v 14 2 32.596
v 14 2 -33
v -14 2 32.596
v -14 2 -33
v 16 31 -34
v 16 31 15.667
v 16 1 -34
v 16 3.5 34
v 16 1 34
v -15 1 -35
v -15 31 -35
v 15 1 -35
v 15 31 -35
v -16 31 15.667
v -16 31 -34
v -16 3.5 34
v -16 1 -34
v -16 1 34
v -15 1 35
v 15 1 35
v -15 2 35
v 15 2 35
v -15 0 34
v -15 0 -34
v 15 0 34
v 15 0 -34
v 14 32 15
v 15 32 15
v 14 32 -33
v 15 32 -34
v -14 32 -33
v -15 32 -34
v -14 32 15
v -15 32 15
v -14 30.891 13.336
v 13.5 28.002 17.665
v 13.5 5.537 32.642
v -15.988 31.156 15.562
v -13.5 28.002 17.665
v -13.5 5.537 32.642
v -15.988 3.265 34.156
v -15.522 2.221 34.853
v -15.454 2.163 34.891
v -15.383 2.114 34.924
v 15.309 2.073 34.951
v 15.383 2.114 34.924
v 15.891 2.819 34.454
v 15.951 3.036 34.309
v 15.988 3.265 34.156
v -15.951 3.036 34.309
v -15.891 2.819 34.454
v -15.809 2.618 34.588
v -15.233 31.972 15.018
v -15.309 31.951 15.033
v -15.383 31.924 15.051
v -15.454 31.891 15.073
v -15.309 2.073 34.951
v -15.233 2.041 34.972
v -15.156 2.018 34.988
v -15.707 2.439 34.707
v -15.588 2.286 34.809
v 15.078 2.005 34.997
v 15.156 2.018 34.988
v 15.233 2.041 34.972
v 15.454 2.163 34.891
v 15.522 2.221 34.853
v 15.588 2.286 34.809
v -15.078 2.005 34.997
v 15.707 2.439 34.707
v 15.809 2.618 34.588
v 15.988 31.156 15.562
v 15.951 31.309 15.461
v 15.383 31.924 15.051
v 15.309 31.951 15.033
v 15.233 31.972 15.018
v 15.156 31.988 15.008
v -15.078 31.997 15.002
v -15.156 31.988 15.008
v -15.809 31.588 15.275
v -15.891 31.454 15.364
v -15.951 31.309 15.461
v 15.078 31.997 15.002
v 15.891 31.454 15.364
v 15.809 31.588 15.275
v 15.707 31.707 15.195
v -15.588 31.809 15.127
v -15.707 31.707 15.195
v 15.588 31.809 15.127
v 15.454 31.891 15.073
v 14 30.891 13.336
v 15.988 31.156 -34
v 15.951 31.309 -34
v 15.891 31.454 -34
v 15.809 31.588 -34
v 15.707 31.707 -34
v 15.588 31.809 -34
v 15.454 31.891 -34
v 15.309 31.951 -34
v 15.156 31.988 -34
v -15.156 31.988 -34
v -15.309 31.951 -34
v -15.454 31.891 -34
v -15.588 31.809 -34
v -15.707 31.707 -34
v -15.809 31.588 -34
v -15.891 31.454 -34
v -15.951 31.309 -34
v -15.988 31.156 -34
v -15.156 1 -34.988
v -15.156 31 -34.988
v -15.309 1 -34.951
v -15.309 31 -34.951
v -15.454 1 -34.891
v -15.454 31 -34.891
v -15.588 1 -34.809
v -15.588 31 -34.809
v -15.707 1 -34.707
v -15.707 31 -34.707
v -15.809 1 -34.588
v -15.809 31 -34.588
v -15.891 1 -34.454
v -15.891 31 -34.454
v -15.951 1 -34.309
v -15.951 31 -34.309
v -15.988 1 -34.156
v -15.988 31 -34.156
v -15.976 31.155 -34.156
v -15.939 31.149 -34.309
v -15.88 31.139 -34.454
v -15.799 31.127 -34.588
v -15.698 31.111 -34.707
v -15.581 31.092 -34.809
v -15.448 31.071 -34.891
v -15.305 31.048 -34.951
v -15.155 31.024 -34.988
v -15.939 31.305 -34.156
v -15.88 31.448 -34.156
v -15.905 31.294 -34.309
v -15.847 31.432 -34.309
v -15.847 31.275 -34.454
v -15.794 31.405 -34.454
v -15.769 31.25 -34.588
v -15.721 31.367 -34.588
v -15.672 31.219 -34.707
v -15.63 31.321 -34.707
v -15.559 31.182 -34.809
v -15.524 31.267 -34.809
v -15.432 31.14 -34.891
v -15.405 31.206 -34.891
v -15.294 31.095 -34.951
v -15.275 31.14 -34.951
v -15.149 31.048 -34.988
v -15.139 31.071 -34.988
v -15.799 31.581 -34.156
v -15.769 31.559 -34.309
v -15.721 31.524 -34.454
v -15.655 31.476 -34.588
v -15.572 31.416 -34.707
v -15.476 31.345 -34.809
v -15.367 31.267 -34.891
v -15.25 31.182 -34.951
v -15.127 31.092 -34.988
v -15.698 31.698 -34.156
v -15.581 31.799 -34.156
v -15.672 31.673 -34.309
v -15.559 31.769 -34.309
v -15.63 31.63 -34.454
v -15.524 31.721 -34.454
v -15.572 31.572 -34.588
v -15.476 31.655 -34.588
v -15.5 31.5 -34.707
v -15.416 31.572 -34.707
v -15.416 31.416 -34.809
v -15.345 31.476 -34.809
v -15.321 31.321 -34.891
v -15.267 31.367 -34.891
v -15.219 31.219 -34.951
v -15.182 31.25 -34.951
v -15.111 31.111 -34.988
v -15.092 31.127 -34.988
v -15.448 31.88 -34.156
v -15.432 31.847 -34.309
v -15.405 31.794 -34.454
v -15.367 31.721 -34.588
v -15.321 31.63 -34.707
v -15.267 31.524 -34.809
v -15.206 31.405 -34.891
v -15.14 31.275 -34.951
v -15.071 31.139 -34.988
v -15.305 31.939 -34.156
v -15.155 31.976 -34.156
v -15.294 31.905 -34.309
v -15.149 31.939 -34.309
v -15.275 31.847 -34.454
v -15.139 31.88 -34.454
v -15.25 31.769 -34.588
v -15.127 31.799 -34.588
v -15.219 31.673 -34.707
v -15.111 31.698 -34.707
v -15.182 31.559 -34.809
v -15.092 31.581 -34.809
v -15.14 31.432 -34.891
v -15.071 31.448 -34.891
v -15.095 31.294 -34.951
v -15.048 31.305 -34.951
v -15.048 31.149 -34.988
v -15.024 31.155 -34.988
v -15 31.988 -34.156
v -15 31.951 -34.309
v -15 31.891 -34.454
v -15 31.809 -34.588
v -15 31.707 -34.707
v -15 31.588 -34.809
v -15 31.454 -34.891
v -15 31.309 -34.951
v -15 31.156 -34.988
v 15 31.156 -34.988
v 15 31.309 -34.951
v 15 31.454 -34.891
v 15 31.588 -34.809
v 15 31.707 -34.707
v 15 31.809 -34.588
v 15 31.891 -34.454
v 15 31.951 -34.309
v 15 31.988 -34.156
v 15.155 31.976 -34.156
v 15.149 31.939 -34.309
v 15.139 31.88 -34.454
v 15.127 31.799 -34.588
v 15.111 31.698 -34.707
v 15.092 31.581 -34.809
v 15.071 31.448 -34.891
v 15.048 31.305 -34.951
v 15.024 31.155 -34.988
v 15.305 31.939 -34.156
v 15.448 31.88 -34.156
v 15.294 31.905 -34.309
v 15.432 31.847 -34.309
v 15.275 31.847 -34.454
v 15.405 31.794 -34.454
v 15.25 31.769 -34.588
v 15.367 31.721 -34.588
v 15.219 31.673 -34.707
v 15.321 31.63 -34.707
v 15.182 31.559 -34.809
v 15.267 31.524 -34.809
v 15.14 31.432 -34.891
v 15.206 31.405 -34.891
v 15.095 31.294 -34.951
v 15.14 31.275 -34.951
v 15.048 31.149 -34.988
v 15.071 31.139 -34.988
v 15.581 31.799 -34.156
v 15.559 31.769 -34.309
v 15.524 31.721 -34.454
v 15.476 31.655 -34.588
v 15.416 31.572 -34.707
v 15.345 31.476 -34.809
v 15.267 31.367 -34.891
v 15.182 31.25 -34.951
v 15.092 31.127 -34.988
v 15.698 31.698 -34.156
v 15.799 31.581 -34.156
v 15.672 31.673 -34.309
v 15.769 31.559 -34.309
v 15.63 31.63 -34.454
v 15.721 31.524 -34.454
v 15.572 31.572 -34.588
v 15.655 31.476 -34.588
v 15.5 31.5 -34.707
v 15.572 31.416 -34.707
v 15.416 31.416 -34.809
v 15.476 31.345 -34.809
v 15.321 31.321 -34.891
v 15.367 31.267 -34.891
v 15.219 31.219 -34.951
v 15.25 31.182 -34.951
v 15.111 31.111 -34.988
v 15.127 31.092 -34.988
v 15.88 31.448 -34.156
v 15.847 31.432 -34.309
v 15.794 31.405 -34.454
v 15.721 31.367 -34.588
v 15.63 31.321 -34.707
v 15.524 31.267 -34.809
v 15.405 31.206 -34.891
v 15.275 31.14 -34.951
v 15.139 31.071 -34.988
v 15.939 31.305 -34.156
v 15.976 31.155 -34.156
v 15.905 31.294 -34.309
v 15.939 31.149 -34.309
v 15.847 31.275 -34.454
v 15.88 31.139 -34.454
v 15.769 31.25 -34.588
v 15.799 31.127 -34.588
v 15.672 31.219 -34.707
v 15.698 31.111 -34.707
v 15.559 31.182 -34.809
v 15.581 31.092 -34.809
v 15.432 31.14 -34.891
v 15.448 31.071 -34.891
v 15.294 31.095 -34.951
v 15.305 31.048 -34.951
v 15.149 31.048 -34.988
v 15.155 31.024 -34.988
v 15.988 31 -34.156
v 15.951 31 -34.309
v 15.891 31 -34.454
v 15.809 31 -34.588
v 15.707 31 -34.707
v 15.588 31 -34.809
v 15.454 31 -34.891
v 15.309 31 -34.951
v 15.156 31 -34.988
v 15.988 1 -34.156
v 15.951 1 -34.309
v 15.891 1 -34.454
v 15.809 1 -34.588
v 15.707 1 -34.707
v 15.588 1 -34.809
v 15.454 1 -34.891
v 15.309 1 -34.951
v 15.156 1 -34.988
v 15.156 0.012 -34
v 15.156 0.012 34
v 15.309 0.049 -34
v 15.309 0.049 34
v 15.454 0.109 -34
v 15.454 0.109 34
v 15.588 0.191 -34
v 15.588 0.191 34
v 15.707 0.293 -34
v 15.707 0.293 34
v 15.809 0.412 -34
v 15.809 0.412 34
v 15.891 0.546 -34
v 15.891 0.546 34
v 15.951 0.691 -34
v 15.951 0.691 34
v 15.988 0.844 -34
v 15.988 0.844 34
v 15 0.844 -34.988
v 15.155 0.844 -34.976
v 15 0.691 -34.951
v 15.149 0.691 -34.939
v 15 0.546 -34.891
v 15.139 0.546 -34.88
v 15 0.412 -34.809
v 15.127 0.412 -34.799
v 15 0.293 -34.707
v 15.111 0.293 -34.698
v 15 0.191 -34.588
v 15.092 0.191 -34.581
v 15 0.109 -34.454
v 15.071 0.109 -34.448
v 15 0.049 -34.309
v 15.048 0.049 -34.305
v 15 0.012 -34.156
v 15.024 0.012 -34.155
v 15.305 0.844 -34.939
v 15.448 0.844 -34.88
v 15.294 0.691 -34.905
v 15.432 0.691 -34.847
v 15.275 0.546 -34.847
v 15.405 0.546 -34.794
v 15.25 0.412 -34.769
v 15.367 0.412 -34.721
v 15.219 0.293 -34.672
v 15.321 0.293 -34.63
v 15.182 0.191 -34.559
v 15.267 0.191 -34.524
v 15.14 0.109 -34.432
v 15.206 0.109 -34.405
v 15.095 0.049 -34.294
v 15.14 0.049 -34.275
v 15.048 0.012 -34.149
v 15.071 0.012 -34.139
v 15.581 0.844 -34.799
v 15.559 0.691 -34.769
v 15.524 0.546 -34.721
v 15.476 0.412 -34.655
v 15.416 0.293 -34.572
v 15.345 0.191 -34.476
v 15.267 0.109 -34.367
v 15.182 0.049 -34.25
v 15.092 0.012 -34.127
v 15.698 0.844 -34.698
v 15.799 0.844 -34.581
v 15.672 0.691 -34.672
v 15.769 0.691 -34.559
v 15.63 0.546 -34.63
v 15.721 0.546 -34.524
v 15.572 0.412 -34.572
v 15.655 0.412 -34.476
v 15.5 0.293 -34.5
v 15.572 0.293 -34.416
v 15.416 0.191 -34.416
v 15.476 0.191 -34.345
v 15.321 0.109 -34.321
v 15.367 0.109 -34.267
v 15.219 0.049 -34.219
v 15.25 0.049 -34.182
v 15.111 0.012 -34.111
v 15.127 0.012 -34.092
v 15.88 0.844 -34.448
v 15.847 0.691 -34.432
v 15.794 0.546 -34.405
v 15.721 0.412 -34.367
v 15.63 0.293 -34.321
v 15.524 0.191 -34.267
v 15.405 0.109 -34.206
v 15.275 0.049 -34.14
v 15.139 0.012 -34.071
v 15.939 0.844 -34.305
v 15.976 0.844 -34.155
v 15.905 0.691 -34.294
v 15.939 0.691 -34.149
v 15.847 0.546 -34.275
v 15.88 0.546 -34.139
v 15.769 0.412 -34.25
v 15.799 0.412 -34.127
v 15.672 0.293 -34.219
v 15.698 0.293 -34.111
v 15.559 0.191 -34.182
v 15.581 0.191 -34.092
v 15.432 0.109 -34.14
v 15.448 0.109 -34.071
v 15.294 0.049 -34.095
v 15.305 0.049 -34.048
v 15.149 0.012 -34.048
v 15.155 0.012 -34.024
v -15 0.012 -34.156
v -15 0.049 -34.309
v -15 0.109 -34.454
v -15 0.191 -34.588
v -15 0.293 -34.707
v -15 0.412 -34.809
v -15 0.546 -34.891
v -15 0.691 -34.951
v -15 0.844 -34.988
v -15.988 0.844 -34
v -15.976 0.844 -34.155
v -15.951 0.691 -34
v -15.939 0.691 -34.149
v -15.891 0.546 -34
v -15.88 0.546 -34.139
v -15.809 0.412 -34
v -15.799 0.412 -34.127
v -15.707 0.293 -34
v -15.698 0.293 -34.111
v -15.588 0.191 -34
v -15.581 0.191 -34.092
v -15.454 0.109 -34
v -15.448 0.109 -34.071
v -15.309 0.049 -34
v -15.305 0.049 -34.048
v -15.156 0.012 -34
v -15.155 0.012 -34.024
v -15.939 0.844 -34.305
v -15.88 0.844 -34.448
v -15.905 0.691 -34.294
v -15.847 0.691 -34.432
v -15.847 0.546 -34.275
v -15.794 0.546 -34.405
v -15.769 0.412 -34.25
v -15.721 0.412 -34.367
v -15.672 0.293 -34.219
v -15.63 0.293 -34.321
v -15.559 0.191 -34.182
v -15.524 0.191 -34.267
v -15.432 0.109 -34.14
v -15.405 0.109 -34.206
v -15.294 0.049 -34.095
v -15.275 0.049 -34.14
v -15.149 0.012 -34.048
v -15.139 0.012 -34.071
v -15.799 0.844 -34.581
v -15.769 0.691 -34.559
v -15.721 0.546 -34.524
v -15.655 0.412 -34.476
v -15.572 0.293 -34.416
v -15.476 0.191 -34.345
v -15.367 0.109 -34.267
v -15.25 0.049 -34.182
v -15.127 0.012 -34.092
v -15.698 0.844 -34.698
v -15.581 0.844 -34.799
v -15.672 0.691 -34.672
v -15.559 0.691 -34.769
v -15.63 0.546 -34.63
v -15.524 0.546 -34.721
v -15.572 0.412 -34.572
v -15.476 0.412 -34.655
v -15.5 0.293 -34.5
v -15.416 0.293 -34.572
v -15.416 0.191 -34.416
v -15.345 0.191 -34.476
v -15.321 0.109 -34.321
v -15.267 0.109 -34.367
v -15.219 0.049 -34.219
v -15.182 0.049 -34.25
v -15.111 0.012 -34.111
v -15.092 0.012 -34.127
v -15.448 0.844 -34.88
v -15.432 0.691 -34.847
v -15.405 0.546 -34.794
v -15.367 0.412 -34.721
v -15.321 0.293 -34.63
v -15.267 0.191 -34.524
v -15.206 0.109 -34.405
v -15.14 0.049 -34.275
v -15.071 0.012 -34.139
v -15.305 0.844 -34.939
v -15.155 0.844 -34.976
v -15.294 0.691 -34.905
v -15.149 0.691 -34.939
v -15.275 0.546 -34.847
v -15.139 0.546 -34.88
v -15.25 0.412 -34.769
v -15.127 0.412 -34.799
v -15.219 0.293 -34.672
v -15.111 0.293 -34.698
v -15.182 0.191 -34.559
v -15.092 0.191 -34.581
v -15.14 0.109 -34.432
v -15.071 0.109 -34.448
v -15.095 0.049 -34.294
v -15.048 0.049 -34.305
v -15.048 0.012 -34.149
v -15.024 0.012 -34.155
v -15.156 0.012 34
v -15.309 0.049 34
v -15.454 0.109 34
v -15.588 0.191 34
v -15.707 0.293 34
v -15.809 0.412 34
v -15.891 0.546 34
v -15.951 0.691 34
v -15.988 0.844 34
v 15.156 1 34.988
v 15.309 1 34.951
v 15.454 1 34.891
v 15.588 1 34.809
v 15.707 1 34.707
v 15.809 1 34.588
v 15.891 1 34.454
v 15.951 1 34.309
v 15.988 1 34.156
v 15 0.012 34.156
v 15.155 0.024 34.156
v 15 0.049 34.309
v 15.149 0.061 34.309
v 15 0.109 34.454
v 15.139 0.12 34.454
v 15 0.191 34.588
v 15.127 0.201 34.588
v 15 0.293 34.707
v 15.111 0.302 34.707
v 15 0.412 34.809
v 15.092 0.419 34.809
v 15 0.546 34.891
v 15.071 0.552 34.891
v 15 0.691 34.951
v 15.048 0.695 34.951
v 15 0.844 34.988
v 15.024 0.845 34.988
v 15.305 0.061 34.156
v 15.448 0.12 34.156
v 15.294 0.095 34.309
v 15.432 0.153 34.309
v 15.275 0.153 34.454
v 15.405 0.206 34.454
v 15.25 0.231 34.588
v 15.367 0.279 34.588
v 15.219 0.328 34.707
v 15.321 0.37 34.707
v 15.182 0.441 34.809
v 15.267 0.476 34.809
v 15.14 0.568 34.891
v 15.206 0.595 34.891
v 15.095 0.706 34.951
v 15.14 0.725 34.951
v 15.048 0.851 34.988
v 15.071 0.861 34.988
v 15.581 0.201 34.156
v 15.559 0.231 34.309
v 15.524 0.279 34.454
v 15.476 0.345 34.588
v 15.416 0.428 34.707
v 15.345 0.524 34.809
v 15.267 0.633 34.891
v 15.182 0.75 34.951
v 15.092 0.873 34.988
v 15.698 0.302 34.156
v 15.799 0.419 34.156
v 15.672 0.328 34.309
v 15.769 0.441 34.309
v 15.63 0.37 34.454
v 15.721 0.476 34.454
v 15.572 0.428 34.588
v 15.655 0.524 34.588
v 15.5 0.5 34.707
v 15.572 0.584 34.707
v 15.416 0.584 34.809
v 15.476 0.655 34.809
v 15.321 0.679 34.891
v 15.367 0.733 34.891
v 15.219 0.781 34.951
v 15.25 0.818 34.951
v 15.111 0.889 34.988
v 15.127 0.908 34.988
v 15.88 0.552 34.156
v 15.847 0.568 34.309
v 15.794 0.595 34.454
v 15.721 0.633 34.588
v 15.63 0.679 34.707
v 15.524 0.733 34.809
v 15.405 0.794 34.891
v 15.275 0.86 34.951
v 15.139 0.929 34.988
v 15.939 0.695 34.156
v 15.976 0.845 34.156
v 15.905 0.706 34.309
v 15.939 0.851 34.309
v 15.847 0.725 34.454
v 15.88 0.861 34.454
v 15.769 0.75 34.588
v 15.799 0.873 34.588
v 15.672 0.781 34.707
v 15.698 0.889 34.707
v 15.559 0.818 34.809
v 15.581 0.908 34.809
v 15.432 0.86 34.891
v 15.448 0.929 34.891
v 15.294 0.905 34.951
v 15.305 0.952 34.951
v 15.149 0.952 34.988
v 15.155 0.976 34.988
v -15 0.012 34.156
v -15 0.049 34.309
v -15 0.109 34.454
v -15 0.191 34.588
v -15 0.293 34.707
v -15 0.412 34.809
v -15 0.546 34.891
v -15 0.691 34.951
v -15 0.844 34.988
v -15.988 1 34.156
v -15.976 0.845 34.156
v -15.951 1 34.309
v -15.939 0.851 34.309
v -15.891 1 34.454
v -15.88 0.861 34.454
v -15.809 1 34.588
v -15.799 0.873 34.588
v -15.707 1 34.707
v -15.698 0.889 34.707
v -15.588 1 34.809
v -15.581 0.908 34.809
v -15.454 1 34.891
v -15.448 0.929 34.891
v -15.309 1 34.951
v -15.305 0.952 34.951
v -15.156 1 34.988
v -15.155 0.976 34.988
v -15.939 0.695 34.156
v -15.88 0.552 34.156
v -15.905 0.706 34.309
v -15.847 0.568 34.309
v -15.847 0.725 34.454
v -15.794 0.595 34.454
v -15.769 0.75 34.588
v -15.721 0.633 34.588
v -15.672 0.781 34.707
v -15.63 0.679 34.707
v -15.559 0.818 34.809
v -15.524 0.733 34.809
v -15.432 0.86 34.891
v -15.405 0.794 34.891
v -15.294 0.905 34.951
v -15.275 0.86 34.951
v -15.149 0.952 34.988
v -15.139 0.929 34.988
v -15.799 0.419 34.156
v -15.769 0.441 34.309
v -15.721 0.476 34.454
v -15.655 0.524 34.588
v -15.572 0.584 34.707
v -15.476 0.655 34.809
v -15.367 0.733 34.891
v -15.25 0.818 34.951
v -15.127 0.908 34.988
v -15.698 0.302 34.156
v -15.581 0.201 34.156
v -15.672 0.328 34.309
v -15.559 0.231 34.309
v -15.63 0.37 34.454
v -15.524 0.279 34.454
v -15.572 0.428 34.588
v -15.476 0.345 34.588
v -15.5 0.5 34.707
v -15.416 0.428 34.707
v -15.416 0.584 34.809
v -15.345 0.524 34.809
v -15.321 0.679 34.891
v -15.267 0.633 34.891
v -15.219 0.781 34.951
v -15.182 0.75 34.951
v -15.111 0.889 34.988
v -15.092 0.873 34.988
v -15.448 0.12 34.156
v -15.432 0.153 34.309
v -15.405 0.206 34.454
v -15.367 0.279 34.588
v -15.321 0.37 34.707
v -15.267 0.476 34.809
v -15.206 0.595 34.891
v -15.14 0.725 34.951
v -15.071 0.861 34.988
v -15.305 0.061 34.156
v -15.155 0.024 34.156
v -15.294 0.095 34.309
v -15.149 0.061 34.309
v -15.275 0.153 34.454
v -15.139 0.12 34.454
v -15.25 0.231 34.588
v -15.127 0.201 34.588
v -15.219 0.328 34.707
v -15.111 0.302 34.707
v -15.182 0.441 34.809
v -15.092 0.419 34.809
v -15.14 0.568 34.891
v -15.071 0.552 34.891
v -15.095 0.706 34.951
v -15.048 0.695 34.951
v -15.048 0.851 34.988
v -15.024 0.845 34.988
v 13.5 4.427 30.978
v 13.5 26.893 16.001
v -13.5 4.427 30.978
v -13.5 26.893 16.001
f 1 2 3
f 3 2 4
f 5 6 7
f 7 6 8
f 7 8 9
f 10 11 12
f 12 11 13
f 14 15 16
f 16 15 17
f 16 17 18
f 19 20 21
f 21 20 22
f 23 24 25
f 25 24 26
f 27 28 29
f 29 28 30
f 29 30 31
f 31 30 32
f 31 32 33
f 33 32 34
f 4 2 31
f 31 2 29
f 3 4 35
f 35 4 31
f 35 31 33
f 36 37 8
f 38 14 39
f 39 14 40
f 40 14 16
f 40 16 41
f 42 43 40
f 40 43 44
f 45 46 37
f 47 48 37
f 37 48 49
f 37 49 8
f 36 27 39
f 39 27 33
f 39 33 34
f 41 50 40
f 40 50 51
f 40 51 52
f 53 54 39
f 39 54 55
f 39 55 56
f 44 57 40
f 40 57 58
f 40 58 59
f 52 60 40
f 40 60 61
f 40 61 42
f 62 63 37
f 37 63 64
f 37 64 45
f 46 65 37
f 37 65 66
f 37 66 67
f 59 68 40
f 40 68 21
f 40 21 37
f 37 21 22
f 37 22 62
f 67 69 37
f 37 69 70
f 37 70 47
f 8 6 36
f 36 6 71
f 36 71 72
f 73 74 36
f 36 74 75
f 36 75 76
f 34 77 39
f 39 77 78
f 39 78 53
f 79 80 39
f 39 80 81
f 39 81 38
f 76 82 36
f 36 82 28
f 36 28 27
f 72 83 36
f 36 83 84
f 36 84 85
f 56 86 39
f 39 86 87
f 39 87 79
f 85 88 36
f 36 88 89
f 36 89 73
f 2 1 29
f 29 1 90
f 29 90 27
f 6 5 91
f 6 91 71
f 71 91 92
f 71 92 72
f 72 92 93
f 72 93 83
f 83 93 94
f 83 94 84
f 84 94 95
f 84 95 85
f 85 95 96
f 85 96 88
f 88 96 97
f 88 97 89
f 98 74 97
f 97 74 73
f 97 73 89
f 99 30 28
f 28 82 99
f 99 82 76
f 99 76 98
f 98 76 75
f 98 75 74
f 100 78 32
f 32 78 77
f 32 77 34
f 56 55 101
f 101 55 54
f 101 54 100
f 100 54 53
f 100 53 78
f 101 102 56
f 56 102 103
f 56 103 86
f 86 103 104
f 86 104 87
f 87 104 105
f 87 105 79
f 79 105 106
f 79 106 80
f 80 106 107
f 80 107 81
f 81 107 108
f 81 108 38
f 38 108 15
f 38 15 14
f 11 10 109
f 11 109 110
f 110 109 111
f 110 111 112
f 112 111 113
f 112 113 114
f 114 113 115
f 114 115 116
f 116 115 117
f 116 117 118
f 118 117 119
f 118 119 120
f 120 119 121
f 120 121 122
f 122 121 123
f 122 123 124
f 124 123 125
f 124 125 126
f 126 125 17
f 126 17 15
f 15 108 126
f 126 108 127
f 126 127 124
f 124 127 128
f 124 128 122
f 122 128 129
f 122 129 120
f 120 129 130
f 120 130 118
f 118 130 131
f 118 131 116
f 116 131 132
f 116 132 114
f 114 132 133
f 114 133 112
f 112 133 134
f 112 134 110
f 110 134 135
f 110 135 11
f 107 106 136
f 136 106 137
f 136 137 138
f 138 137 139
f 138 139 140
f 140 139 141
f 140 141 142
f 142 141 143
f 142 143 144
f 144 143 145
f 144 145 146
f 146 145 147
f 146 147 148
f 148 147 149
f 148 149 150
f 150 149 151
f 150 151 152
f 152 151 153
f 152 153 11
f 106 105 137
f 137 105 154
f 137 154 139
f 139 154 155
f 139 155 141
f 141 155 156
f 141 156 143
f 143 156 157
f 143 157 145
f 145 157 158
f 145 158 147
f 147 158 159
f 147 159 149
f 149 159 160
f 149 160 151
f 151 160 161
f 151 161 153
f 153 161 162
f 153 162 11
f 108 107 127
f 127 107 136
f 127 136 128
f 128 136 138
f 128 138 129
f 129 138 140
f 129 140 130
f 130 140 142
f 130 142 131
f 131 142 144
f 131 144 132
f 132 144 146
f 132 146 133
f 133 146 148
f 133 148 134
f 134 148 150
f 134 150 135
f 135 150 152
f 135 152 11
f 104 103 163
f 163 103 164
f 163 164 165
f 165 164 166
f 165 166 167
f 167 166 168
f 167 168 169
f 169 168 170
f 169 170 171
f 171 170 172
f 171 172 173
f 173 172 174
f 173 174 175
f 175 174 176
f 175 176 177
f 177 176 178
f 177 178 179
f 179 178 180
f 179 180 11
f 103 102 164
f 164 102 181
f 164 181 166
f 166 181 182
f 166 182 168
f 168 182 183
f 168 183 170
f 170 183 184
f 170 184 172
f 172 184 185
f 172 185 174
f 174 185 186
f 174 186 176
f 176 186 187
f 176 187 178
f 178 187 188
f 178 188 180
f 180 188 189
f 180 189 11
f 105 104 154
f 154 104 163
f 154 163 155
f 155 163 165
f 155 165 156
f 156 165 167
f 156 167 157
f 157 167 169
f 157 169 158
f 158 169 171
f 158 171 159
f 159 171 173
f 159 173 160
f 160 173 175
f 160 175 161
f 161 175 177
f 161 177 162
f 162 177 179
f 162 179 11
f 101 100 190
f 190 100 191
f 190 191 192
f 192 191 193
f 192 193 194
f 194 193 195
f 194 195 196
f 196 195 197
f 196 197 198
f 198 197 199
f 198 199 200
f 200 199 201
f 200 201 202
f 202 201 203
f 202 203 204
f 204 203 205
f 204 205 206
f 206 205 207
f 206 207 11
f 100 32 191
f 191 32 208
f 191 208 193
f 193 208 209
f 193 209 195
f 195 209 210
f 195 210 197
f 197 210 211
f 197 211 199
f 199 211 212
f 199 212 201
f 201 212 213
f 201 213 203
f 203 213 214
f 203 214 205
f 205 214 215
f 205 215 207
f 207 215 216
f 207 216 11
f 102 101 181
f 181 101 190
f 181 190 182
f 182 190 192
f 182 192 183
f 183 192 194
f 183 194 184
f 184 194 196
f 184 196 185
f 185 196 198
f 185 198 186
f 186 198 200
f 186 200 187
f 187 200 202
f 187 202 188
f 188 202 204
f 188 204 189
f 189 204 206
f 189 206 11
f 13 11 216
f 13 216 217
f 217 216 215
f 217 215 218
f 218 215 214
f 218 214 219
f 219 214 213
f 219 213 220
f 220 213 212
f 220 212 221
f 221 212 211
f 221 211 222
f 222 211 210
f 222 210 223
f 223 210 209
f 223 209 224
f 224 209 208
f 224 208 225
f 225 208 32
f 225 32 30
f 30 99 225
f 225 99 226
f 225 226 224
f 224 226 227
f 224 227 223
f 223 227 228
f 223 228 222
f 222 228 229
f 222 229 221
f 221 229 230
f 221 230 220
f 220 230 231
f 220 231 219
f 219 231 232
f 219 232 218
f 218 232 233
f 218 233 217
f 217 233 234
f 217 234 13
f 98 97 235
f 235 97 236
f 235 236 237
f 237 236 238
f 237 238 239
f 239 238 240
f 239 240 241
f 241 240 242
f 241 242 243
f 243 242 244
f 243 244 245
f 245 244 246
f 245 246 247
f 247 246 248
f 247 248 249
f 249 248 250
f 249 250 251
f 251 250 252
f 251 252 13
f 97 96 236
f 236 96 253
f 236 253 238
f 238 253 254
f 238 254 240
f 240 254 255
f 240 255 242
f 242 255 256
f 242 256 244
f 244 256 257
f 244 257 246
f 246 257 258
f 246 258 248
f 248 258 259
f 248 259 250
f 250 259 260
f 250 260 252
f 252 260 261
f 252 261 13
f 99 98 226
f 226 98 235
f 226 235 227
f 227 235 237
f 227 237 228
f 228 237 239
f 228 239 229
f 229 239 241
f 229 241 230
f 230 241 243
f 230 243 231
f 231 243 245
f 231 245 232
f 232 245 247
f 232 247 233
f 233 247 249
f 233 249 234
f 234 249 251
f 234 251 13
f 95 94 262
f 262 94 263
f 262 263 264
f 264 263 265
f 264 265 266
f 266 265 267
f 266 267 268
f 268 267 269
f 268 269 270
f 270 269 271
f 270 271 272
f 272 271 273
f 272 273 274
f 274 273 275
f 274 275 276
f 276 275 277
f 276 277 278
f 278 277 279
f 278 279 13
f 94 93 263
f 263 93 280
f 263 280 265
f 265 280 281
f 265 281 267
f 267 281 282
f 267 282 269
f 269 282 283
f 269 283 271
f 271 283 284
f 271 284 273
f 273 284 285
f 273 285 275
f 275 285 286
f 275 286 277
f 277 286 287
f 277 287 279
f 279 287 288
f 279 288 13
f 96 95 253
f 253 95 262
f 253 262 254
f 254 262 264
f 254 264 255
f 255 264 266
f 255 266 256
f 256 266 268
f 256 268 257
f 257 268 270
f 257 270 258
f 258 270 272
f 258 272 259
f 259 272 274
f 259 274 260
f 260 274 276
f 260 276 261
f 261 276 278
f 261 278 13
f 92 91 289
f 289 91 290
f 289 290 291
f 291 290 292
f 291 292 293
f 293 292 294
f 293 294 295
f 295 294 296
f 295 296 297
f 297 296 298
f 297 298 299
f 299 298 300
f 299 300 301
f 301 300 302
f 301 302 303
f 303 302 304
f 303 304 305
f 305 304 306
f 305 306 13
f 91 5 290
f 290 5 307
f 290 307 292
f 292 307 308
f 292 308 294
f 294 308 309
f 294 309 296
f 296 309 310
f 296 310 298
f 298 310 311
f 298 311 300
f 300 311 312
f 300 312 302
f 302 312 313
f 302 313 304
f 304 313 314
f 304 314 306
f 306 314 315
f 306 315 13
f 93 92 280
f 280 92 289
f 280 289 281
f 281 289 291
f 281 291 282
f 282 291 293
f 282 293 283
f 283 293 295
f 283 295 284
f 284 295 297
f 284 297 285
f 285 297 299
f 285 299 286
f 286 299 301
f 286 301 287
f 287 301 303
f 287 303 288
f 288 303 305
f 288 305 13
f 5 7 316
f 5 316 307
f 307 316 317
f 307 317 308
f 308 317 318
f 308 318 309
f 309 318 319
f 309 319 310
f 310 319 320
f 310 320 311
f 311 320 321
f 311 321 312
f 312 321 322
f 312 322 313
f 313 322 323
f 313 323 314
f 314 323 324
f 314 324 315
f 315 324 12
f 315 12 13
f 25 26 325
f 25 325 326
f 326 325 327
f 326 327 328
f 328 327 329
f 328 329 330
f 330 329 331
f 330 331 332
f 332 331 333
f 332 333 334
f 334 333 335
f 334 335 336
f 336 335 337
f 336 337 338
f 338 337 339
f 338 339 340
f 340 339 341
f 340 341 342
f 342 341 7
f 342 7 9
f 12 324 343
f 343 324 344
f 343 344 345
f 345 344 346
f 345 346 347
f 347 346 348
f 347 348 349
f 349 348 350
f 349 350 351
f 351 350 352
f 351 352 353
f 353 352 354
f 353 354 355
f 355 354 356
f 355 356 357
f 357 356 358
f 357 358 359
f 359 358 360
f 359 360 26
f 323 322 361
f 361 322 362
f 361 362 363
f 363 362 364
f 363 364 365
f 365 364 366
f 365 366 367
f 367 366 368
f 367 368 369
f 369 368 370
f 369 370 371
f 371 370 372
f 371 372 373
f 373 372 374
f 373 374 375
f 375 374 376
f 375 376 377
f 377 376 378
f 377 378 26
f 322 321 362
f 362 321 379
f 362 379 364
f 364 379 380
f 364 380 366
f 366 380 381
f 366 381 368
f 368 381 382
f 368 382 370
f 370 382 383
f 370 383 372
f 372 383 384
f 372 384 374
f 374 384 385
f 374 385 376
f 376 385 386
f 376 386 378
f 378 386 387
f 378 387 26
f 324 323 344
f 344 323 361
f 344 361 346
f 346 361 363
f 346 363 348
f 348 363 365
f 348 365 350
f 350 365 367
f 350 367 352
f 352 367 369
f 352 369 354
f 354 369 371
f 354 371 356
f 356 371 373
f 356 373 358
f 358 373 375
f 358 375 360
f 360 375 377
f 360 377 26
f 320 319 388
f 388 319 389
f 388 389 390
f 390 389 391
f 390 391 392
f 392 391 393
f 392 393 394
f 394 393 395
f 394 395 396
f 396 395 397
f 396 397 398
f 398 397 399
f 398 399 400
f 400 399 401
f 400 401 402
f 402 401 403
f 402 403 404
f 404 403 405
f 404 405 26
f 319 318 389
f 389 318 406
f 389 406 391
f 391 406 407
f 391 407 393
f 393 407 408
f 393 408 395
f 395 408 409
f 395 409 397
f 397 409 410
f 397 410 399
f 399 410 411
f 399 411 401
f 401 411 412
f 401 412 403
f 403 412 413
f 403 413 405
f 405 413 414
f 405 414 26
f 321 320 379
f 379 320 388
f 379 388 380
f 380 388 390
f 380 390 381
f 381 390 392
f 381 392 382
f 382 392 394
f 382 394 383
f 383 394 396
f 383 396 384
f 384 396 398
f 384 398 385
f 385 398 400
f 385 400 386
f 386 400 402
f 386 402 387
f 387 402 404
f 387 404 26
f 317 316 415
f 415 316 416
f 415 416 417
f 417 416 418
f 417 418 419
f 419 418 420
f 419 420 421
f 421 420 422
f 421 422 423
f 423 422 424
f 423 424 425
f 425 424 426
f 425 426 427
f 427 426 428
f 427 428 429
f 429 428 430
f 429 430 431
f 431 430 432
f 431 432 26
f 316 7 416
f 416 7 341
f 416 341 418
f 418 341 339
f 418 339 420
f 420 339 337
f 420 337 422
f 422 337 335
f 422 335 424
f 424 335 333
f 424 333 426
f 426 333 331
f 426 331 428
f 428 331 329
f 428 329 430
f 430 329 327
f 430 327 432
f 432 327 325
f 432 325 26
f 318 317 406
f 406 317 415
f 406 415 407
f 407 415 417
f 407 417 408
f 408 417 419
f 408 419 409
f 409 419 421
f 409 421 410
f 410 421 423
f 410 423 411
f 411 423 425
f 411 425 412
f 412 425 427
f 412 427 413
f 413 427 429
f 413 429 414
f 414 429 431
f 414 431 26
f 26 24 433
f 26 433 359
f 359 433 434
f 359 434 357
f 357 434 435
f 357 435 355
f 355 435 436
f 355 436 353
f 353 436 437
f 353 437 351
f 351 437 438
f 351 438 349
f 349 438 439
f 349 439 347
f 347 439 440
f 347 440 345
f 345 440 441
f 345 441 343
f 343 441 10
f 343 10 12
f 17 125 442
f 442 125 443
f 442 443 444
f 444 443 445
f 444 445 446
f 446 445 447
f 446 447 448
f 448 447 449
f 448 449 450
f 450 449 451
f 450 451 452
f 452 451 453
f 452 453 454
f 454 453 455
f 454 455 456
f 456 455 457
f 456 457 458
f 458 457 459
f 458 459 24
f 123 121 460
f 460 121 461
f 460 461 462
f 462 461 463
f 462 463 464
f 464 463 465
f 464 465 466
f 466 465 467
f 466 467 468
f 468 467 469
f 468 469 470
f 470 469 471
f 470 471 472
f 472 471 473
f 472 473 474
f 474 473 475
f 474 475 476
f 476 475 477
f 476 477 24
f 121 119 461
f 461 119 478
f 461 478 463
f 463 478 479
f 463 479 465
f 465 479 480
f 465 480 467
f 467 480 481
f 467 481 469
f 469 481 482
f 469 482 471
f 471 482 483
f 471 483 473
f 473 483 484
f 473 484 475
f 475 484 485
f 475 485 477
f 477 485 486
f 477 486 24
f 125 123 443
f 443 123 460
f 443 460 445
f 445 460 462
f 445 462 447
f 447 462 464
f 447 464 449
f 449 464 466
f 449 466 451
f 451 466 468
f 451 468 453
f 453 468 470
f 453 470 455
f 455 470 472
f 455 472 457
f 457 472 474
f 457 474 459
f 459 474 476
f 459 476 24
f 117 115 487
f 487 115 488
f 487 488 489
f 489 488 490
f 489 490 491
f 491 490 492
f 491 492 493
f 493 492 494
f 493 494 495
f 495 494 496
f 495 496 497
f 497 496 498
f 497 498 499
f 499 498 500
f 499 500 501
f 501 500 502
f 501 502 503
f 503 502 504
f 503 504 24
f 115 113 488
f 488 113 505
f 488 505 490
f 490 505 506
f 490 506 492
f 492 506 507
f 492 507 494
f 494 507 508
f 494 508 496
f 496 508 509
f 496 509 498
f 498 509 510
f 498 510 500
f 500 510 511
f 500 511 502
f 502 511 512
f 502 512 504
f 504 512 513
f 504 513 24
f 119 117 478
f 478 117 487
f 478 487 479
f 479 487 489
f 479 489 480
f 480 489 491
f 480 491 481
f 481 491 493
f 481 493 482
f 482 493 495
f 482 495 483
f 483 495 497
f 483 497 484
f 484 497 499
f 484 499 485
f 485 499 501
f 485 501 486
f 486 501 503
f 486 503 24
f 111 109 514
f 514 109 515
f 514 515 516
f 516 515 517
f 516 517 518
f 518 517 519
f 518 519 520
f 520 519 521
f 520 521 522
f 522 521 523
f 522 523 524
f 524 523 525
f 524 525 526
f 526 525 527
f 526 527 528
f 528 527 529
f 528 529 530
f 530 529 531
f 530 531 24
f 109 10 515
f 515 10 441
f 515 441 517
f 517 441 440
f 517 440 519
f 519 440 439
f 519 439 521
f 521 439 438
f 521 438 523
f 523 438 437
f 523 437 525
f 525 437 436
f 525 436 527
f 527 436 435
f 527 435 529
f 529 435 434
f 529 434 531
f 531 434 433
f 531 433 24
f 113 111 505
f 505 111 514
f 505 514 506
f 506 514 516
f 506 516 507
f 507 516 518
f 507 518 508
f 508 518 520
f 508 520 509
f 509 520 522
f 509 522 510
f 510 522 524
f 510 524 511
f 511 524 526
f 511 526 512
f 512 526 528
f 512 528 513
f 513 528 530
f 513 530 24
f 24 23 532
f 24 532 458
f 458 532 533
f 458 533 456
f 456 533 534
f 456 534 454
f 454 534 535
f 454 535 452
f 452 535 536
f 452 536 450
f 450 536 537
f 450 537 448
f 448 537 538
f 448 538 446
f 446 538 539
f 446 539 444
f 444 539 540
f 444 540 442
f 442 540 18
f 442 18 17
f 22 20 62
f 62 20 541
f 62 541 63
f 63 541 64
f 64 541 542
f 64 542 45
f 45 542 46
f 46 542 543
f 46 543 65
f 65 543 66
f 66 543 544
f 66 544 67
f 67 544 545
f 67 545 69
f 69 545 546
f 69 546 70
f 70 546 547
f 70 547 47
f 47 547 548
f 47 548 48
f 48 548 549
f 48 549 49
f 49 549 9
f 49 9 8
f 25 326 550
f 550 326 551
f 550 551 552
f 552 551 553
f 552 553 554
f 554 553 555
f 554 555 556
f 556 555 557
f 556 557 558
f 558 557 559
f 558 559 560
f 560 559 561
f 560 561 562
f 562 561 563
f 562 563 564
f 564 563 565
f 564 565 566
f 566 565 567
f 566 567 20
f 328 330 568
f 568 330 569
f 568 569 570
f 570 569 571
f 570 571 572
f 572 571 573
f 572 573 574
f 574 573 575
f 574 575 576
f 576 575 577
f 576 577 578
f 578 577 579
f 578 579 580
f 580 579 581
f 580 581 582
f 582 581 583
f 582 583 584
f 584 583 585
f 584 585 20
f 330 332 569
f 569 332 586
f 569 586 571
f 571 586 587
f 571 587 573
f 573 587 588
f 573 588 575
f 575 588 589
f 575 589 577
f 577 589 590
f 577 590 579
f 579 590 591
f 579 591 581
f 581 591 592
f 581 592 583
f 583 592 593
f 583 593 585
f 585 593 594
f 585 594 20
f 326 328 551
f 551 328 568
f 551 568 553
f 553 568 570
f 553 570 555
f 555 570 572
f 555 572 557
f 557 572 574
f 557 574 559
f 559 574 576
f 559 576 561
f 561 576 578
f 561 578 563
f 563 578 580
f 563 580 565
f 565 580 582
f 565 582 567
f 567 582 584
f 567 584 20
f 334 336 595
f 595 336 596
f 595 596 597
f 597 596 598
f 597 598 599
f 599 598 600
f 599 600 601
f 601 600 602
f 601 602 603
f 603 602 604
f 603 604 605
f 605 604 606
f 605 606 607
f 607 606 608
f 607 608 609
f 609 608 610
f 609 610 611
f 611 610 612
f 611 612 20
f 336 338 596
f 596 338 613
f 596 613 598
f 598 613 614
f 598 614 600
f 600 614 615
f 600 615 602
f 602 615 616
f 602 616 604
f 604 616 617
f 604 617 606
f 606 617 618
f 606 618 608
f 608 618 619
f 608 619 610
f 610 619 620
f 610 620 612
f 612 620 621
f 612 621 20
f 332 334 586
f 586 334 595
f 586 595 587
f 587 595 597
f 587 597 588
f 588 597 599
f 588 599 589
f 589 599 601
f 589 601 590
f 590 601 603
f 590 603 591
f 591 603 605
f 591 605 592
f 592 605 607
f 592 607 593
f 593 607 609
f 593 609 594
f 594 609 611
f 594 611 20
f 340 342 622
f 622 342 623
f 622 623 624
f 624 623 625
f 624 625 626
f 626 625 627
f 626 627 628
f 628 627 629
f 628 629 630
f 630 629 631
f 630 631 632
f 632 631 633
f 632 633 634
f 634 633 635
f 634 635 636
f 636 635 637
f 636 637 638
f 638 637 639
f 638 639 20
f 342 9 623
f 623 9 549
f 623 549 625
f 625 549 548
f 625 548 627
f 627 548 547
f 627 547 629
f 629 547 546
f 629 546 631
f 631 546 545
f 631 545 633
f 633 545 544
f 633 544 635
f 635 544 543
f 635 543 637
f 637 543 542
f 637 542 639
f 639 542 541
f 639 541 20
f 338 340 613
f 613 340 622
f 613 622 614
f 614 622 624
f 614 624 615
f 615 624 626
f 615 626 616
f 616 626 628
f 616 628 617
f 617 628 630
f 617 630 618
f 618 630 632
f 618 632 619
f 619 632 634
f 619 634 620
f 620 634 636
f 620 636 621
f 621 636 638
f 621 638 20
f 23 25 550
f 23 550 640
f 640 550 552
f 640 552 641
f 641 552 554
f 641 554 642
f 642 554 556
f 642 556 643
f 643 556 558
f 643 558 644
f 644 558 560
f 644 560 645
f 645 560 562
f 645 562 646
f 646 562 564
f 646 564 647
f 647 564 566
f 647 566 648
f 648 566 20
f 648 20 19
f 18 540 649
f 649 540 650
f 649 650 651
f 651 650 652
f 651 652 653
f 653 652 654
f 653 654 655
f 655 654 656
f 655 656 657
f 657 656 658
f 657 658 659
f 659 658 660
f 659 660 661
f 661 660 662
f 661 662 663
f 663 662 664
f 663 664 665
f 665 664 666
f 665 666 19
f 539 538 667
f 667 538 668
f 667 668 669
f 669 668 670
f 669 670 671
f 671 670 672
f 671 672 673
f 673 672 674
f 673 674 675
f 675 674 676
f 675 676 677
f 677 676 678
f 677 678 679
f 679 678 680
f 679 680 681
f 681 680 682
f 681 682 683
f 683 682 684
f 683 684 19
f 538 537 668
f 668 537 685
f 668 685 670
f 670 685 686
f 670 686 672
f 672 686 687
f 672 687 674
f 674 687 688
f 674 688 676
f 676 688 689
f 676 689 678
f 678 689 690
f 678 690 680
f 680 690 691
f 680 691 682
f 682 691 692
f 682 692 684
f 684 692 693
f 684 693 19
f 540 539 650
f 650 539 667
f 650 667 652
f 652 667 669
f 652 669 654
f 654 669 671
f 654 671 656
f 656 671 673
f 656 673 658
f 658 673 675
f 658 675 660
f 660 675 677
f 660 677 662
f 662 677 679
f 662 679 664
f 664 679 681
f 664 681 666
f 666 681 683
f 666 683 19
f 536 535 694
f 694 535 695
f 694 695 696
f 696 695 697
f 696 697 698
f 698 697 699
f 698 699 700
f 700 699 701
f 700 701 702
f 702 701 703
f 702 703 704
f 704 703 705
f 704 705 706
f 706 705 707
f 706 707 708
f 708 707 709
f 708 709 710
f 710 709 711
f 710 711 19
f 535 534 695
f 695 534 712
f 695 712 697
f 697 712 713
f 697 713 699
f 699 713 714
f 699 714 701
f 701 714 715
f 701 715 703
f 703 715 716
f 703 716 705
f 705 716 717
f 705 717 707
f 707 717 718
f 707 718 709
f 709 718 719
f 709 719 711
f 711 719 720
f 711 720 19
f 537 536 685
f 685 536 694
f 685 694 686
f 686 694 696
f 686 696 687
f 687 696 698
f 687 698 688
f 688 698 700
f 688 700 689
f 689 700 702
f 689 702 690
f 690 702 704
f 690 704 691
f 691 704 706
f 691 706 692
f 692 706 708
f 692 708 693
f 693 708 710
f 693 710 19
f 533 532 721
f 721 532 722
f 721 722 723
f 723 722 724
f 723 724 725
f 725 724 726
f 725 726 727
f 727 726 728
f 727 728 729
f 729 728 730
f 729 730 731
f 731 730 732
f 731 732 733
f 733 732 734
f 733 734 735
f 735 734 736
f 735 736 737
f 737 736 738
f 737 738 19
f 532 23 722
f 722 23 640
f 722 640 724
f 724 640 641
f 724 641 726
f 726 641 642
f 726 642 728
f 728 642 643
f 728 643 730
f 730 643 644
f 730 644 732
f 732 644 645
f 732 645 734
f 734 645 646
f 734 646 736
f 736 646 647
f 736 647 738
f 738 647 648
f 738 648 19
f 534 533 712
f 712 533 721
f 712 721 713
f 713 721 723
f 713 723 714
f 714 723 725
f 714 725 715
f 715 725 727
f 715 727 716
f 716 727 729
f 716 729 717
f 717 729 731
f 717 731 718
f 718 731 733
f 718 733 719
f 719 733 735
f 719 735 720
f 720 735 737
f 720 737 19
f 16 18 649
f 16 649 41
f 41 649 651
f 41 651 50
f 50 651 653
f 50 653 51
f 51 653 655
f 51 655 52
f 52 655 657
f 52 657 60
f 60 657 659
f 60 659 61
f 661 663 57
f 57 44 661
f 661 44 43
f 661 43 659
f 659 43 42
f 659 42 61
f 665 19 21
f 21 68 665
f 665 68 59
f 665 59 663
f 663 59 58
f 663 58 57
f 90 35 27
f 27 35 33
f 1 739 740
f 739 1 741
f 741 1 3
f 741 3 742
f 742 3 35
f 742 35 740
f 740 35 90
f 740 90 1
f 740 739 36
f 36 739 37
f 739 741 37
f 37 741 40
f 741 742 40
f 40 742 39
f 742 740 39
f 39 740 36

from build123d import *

# Parameters (mm, degrees)
SKETCH2_W           = 32
SKETCH2_H           = 70
BOSS_EXTRUDE1_DEPTH = 2
BOSS_EXTRUDE2_DEPTH = 2
BOSS_EXTRUDE3_DEPTH = 2
SKETCH6_W           = 28
SKETCH6_H           = 30
BOSS_EXTRUDE4_DEPTH = 2
FILLET1_R           = 1
FILLET2_R           = 1
FILLET3_R           = 1
FILLET4_R           = 1
FILLET5_R           = 1
SKETCH7_W           = 28
SKETCH7_H           = 36.055512754
SKETCH7_W_2         = 27
SKETCH7_H_2         = 27
BOSS_EXTRUDE5_DEPTH = 2


with BuildPart() as part:
    # Sketch2 → Boss-Extrude1 (new body)
    with BuildSketch(Plane(origin=(0, 0, 0), x_dir=(1, 0, 0), z_dir=(0, 1, 0))):
        Rectangle(SKETCH2_W, SKETCH2_H)
    extrude(amount=BOSS_EXTRUDE1_DEPTH)



with BuildPart() as body_2:
    # Sketch4 → Boss-Extrude2 (new body)
    with BuildSketch(Plane.ZY.offset(16)):
        Polygon((35, 2), (15, 32), (-35, 32), (-35, 2), align=None)
    extrude(amount=-BOSS_EXTRUDE2_DEPTH)


with BuildPart() as body_3:
    # Sketch5 → Boss-Extrude3 (new body)
    with BuildSketch(Plane(origin=(16, 0, 0), x_dir=(0, 0, -1), z_dir=(1, 0, 0))):
        Polygon((-35, 2), (-15, 32), (35, 32), (35, 2), align=None)
    extrude(amount=-BOSS_EXTRUDE3_DEPTH)


with BuildPart() as part_1:
    add(part.part)

    add(body_2.part)  # Boss-Extrude4 merges body 2

    add(body_3.part)  # Boss-Extrude4 merges body 3
    # Sketch6 → Boss-Extrude4 (add)
    with BuildSketch(Plane(origin=(0, 0, -35), x_dir=(-1, 0, 0), z_dir=(0, 0, -1))):
        with Locations((0, 17)):
            Rectangle(SKETCH6_W, SKETCH6_H)
    extrude(amount=-BOSS_EXTRUDE4_DEPTH)

    # Fillet1
    fillet1_edges = [part_1.edges().sort_by_distance(p)[0] for p in [
        (16, 32, -10),
    ]]
    fillet(fillet1_edges, radius=FILLET1_R)

    # Fillet2
    fillet2_edges = [part_1.edges().sort_by_distance(p)[0] for p in [
        (-16, 32, -10),
    ]]
    fillet(fillet2_edges, radius=FILLET2_R)

    # Fillet3
    fillet3_edges = [part_1.edges().sort_by_distance(p)[0] for p in [
        (0, 32, -35),
        (16, 15.5, -35),
        (15.707106781, 31.707106781, -35),
        (-16, 15.5, -35),
        (-15.707106781, 31.707106781, -35),
    ]]
    fillet(fillet3_edges, radius=FILLET3_R)

    # Fillet4
    fillet4_edges = [part_1.edges().sort_by_distance(p)[0] for p in [
        (0, 0, -35),
        (16, 0, 0.5),
        (-16, 0, 0.5),
        (-15.707106781, 0, -34.707106781),
        (15.707106781, 0, -34.707106781),
    ]]
    fillet(fillet4_edges, radius=FILLET4_R)

    # Fillet5
    fillet5_edges = [part_1.edges().sort_by_distance(p)[0] for p in [
        (16, 1.5, 35),
        (-16, 1.5, 35),
        (0, 0, 35),
        (15.707106781, 0.292893219, 35),
        (-15.707106781, 0.292893219, 35),
    ]]
    fillet(fillet5_edges, radius=FILLET5_R)

    # Sketch7 → Boss-Extrude5 (add)
    with BuildSketch(Plane(origin=(0, 16.769230769, 25.153846154), x_dir=(1, 0, 0), z_dir=(0, 0.5547001962252296, 0.8320502943378435))):
        with Locations((0, 0.277350098)):
            Rectangle(SKETCH7_W, SKETCH7_H)
        Rectangle(SKETCH7_W_2, SKETCH7_H_2, mode=Mode.SUBTRACT)
    extrude(amount=-BOSS_EXTRUDE5_DEPTH)


solid = part_1.part
